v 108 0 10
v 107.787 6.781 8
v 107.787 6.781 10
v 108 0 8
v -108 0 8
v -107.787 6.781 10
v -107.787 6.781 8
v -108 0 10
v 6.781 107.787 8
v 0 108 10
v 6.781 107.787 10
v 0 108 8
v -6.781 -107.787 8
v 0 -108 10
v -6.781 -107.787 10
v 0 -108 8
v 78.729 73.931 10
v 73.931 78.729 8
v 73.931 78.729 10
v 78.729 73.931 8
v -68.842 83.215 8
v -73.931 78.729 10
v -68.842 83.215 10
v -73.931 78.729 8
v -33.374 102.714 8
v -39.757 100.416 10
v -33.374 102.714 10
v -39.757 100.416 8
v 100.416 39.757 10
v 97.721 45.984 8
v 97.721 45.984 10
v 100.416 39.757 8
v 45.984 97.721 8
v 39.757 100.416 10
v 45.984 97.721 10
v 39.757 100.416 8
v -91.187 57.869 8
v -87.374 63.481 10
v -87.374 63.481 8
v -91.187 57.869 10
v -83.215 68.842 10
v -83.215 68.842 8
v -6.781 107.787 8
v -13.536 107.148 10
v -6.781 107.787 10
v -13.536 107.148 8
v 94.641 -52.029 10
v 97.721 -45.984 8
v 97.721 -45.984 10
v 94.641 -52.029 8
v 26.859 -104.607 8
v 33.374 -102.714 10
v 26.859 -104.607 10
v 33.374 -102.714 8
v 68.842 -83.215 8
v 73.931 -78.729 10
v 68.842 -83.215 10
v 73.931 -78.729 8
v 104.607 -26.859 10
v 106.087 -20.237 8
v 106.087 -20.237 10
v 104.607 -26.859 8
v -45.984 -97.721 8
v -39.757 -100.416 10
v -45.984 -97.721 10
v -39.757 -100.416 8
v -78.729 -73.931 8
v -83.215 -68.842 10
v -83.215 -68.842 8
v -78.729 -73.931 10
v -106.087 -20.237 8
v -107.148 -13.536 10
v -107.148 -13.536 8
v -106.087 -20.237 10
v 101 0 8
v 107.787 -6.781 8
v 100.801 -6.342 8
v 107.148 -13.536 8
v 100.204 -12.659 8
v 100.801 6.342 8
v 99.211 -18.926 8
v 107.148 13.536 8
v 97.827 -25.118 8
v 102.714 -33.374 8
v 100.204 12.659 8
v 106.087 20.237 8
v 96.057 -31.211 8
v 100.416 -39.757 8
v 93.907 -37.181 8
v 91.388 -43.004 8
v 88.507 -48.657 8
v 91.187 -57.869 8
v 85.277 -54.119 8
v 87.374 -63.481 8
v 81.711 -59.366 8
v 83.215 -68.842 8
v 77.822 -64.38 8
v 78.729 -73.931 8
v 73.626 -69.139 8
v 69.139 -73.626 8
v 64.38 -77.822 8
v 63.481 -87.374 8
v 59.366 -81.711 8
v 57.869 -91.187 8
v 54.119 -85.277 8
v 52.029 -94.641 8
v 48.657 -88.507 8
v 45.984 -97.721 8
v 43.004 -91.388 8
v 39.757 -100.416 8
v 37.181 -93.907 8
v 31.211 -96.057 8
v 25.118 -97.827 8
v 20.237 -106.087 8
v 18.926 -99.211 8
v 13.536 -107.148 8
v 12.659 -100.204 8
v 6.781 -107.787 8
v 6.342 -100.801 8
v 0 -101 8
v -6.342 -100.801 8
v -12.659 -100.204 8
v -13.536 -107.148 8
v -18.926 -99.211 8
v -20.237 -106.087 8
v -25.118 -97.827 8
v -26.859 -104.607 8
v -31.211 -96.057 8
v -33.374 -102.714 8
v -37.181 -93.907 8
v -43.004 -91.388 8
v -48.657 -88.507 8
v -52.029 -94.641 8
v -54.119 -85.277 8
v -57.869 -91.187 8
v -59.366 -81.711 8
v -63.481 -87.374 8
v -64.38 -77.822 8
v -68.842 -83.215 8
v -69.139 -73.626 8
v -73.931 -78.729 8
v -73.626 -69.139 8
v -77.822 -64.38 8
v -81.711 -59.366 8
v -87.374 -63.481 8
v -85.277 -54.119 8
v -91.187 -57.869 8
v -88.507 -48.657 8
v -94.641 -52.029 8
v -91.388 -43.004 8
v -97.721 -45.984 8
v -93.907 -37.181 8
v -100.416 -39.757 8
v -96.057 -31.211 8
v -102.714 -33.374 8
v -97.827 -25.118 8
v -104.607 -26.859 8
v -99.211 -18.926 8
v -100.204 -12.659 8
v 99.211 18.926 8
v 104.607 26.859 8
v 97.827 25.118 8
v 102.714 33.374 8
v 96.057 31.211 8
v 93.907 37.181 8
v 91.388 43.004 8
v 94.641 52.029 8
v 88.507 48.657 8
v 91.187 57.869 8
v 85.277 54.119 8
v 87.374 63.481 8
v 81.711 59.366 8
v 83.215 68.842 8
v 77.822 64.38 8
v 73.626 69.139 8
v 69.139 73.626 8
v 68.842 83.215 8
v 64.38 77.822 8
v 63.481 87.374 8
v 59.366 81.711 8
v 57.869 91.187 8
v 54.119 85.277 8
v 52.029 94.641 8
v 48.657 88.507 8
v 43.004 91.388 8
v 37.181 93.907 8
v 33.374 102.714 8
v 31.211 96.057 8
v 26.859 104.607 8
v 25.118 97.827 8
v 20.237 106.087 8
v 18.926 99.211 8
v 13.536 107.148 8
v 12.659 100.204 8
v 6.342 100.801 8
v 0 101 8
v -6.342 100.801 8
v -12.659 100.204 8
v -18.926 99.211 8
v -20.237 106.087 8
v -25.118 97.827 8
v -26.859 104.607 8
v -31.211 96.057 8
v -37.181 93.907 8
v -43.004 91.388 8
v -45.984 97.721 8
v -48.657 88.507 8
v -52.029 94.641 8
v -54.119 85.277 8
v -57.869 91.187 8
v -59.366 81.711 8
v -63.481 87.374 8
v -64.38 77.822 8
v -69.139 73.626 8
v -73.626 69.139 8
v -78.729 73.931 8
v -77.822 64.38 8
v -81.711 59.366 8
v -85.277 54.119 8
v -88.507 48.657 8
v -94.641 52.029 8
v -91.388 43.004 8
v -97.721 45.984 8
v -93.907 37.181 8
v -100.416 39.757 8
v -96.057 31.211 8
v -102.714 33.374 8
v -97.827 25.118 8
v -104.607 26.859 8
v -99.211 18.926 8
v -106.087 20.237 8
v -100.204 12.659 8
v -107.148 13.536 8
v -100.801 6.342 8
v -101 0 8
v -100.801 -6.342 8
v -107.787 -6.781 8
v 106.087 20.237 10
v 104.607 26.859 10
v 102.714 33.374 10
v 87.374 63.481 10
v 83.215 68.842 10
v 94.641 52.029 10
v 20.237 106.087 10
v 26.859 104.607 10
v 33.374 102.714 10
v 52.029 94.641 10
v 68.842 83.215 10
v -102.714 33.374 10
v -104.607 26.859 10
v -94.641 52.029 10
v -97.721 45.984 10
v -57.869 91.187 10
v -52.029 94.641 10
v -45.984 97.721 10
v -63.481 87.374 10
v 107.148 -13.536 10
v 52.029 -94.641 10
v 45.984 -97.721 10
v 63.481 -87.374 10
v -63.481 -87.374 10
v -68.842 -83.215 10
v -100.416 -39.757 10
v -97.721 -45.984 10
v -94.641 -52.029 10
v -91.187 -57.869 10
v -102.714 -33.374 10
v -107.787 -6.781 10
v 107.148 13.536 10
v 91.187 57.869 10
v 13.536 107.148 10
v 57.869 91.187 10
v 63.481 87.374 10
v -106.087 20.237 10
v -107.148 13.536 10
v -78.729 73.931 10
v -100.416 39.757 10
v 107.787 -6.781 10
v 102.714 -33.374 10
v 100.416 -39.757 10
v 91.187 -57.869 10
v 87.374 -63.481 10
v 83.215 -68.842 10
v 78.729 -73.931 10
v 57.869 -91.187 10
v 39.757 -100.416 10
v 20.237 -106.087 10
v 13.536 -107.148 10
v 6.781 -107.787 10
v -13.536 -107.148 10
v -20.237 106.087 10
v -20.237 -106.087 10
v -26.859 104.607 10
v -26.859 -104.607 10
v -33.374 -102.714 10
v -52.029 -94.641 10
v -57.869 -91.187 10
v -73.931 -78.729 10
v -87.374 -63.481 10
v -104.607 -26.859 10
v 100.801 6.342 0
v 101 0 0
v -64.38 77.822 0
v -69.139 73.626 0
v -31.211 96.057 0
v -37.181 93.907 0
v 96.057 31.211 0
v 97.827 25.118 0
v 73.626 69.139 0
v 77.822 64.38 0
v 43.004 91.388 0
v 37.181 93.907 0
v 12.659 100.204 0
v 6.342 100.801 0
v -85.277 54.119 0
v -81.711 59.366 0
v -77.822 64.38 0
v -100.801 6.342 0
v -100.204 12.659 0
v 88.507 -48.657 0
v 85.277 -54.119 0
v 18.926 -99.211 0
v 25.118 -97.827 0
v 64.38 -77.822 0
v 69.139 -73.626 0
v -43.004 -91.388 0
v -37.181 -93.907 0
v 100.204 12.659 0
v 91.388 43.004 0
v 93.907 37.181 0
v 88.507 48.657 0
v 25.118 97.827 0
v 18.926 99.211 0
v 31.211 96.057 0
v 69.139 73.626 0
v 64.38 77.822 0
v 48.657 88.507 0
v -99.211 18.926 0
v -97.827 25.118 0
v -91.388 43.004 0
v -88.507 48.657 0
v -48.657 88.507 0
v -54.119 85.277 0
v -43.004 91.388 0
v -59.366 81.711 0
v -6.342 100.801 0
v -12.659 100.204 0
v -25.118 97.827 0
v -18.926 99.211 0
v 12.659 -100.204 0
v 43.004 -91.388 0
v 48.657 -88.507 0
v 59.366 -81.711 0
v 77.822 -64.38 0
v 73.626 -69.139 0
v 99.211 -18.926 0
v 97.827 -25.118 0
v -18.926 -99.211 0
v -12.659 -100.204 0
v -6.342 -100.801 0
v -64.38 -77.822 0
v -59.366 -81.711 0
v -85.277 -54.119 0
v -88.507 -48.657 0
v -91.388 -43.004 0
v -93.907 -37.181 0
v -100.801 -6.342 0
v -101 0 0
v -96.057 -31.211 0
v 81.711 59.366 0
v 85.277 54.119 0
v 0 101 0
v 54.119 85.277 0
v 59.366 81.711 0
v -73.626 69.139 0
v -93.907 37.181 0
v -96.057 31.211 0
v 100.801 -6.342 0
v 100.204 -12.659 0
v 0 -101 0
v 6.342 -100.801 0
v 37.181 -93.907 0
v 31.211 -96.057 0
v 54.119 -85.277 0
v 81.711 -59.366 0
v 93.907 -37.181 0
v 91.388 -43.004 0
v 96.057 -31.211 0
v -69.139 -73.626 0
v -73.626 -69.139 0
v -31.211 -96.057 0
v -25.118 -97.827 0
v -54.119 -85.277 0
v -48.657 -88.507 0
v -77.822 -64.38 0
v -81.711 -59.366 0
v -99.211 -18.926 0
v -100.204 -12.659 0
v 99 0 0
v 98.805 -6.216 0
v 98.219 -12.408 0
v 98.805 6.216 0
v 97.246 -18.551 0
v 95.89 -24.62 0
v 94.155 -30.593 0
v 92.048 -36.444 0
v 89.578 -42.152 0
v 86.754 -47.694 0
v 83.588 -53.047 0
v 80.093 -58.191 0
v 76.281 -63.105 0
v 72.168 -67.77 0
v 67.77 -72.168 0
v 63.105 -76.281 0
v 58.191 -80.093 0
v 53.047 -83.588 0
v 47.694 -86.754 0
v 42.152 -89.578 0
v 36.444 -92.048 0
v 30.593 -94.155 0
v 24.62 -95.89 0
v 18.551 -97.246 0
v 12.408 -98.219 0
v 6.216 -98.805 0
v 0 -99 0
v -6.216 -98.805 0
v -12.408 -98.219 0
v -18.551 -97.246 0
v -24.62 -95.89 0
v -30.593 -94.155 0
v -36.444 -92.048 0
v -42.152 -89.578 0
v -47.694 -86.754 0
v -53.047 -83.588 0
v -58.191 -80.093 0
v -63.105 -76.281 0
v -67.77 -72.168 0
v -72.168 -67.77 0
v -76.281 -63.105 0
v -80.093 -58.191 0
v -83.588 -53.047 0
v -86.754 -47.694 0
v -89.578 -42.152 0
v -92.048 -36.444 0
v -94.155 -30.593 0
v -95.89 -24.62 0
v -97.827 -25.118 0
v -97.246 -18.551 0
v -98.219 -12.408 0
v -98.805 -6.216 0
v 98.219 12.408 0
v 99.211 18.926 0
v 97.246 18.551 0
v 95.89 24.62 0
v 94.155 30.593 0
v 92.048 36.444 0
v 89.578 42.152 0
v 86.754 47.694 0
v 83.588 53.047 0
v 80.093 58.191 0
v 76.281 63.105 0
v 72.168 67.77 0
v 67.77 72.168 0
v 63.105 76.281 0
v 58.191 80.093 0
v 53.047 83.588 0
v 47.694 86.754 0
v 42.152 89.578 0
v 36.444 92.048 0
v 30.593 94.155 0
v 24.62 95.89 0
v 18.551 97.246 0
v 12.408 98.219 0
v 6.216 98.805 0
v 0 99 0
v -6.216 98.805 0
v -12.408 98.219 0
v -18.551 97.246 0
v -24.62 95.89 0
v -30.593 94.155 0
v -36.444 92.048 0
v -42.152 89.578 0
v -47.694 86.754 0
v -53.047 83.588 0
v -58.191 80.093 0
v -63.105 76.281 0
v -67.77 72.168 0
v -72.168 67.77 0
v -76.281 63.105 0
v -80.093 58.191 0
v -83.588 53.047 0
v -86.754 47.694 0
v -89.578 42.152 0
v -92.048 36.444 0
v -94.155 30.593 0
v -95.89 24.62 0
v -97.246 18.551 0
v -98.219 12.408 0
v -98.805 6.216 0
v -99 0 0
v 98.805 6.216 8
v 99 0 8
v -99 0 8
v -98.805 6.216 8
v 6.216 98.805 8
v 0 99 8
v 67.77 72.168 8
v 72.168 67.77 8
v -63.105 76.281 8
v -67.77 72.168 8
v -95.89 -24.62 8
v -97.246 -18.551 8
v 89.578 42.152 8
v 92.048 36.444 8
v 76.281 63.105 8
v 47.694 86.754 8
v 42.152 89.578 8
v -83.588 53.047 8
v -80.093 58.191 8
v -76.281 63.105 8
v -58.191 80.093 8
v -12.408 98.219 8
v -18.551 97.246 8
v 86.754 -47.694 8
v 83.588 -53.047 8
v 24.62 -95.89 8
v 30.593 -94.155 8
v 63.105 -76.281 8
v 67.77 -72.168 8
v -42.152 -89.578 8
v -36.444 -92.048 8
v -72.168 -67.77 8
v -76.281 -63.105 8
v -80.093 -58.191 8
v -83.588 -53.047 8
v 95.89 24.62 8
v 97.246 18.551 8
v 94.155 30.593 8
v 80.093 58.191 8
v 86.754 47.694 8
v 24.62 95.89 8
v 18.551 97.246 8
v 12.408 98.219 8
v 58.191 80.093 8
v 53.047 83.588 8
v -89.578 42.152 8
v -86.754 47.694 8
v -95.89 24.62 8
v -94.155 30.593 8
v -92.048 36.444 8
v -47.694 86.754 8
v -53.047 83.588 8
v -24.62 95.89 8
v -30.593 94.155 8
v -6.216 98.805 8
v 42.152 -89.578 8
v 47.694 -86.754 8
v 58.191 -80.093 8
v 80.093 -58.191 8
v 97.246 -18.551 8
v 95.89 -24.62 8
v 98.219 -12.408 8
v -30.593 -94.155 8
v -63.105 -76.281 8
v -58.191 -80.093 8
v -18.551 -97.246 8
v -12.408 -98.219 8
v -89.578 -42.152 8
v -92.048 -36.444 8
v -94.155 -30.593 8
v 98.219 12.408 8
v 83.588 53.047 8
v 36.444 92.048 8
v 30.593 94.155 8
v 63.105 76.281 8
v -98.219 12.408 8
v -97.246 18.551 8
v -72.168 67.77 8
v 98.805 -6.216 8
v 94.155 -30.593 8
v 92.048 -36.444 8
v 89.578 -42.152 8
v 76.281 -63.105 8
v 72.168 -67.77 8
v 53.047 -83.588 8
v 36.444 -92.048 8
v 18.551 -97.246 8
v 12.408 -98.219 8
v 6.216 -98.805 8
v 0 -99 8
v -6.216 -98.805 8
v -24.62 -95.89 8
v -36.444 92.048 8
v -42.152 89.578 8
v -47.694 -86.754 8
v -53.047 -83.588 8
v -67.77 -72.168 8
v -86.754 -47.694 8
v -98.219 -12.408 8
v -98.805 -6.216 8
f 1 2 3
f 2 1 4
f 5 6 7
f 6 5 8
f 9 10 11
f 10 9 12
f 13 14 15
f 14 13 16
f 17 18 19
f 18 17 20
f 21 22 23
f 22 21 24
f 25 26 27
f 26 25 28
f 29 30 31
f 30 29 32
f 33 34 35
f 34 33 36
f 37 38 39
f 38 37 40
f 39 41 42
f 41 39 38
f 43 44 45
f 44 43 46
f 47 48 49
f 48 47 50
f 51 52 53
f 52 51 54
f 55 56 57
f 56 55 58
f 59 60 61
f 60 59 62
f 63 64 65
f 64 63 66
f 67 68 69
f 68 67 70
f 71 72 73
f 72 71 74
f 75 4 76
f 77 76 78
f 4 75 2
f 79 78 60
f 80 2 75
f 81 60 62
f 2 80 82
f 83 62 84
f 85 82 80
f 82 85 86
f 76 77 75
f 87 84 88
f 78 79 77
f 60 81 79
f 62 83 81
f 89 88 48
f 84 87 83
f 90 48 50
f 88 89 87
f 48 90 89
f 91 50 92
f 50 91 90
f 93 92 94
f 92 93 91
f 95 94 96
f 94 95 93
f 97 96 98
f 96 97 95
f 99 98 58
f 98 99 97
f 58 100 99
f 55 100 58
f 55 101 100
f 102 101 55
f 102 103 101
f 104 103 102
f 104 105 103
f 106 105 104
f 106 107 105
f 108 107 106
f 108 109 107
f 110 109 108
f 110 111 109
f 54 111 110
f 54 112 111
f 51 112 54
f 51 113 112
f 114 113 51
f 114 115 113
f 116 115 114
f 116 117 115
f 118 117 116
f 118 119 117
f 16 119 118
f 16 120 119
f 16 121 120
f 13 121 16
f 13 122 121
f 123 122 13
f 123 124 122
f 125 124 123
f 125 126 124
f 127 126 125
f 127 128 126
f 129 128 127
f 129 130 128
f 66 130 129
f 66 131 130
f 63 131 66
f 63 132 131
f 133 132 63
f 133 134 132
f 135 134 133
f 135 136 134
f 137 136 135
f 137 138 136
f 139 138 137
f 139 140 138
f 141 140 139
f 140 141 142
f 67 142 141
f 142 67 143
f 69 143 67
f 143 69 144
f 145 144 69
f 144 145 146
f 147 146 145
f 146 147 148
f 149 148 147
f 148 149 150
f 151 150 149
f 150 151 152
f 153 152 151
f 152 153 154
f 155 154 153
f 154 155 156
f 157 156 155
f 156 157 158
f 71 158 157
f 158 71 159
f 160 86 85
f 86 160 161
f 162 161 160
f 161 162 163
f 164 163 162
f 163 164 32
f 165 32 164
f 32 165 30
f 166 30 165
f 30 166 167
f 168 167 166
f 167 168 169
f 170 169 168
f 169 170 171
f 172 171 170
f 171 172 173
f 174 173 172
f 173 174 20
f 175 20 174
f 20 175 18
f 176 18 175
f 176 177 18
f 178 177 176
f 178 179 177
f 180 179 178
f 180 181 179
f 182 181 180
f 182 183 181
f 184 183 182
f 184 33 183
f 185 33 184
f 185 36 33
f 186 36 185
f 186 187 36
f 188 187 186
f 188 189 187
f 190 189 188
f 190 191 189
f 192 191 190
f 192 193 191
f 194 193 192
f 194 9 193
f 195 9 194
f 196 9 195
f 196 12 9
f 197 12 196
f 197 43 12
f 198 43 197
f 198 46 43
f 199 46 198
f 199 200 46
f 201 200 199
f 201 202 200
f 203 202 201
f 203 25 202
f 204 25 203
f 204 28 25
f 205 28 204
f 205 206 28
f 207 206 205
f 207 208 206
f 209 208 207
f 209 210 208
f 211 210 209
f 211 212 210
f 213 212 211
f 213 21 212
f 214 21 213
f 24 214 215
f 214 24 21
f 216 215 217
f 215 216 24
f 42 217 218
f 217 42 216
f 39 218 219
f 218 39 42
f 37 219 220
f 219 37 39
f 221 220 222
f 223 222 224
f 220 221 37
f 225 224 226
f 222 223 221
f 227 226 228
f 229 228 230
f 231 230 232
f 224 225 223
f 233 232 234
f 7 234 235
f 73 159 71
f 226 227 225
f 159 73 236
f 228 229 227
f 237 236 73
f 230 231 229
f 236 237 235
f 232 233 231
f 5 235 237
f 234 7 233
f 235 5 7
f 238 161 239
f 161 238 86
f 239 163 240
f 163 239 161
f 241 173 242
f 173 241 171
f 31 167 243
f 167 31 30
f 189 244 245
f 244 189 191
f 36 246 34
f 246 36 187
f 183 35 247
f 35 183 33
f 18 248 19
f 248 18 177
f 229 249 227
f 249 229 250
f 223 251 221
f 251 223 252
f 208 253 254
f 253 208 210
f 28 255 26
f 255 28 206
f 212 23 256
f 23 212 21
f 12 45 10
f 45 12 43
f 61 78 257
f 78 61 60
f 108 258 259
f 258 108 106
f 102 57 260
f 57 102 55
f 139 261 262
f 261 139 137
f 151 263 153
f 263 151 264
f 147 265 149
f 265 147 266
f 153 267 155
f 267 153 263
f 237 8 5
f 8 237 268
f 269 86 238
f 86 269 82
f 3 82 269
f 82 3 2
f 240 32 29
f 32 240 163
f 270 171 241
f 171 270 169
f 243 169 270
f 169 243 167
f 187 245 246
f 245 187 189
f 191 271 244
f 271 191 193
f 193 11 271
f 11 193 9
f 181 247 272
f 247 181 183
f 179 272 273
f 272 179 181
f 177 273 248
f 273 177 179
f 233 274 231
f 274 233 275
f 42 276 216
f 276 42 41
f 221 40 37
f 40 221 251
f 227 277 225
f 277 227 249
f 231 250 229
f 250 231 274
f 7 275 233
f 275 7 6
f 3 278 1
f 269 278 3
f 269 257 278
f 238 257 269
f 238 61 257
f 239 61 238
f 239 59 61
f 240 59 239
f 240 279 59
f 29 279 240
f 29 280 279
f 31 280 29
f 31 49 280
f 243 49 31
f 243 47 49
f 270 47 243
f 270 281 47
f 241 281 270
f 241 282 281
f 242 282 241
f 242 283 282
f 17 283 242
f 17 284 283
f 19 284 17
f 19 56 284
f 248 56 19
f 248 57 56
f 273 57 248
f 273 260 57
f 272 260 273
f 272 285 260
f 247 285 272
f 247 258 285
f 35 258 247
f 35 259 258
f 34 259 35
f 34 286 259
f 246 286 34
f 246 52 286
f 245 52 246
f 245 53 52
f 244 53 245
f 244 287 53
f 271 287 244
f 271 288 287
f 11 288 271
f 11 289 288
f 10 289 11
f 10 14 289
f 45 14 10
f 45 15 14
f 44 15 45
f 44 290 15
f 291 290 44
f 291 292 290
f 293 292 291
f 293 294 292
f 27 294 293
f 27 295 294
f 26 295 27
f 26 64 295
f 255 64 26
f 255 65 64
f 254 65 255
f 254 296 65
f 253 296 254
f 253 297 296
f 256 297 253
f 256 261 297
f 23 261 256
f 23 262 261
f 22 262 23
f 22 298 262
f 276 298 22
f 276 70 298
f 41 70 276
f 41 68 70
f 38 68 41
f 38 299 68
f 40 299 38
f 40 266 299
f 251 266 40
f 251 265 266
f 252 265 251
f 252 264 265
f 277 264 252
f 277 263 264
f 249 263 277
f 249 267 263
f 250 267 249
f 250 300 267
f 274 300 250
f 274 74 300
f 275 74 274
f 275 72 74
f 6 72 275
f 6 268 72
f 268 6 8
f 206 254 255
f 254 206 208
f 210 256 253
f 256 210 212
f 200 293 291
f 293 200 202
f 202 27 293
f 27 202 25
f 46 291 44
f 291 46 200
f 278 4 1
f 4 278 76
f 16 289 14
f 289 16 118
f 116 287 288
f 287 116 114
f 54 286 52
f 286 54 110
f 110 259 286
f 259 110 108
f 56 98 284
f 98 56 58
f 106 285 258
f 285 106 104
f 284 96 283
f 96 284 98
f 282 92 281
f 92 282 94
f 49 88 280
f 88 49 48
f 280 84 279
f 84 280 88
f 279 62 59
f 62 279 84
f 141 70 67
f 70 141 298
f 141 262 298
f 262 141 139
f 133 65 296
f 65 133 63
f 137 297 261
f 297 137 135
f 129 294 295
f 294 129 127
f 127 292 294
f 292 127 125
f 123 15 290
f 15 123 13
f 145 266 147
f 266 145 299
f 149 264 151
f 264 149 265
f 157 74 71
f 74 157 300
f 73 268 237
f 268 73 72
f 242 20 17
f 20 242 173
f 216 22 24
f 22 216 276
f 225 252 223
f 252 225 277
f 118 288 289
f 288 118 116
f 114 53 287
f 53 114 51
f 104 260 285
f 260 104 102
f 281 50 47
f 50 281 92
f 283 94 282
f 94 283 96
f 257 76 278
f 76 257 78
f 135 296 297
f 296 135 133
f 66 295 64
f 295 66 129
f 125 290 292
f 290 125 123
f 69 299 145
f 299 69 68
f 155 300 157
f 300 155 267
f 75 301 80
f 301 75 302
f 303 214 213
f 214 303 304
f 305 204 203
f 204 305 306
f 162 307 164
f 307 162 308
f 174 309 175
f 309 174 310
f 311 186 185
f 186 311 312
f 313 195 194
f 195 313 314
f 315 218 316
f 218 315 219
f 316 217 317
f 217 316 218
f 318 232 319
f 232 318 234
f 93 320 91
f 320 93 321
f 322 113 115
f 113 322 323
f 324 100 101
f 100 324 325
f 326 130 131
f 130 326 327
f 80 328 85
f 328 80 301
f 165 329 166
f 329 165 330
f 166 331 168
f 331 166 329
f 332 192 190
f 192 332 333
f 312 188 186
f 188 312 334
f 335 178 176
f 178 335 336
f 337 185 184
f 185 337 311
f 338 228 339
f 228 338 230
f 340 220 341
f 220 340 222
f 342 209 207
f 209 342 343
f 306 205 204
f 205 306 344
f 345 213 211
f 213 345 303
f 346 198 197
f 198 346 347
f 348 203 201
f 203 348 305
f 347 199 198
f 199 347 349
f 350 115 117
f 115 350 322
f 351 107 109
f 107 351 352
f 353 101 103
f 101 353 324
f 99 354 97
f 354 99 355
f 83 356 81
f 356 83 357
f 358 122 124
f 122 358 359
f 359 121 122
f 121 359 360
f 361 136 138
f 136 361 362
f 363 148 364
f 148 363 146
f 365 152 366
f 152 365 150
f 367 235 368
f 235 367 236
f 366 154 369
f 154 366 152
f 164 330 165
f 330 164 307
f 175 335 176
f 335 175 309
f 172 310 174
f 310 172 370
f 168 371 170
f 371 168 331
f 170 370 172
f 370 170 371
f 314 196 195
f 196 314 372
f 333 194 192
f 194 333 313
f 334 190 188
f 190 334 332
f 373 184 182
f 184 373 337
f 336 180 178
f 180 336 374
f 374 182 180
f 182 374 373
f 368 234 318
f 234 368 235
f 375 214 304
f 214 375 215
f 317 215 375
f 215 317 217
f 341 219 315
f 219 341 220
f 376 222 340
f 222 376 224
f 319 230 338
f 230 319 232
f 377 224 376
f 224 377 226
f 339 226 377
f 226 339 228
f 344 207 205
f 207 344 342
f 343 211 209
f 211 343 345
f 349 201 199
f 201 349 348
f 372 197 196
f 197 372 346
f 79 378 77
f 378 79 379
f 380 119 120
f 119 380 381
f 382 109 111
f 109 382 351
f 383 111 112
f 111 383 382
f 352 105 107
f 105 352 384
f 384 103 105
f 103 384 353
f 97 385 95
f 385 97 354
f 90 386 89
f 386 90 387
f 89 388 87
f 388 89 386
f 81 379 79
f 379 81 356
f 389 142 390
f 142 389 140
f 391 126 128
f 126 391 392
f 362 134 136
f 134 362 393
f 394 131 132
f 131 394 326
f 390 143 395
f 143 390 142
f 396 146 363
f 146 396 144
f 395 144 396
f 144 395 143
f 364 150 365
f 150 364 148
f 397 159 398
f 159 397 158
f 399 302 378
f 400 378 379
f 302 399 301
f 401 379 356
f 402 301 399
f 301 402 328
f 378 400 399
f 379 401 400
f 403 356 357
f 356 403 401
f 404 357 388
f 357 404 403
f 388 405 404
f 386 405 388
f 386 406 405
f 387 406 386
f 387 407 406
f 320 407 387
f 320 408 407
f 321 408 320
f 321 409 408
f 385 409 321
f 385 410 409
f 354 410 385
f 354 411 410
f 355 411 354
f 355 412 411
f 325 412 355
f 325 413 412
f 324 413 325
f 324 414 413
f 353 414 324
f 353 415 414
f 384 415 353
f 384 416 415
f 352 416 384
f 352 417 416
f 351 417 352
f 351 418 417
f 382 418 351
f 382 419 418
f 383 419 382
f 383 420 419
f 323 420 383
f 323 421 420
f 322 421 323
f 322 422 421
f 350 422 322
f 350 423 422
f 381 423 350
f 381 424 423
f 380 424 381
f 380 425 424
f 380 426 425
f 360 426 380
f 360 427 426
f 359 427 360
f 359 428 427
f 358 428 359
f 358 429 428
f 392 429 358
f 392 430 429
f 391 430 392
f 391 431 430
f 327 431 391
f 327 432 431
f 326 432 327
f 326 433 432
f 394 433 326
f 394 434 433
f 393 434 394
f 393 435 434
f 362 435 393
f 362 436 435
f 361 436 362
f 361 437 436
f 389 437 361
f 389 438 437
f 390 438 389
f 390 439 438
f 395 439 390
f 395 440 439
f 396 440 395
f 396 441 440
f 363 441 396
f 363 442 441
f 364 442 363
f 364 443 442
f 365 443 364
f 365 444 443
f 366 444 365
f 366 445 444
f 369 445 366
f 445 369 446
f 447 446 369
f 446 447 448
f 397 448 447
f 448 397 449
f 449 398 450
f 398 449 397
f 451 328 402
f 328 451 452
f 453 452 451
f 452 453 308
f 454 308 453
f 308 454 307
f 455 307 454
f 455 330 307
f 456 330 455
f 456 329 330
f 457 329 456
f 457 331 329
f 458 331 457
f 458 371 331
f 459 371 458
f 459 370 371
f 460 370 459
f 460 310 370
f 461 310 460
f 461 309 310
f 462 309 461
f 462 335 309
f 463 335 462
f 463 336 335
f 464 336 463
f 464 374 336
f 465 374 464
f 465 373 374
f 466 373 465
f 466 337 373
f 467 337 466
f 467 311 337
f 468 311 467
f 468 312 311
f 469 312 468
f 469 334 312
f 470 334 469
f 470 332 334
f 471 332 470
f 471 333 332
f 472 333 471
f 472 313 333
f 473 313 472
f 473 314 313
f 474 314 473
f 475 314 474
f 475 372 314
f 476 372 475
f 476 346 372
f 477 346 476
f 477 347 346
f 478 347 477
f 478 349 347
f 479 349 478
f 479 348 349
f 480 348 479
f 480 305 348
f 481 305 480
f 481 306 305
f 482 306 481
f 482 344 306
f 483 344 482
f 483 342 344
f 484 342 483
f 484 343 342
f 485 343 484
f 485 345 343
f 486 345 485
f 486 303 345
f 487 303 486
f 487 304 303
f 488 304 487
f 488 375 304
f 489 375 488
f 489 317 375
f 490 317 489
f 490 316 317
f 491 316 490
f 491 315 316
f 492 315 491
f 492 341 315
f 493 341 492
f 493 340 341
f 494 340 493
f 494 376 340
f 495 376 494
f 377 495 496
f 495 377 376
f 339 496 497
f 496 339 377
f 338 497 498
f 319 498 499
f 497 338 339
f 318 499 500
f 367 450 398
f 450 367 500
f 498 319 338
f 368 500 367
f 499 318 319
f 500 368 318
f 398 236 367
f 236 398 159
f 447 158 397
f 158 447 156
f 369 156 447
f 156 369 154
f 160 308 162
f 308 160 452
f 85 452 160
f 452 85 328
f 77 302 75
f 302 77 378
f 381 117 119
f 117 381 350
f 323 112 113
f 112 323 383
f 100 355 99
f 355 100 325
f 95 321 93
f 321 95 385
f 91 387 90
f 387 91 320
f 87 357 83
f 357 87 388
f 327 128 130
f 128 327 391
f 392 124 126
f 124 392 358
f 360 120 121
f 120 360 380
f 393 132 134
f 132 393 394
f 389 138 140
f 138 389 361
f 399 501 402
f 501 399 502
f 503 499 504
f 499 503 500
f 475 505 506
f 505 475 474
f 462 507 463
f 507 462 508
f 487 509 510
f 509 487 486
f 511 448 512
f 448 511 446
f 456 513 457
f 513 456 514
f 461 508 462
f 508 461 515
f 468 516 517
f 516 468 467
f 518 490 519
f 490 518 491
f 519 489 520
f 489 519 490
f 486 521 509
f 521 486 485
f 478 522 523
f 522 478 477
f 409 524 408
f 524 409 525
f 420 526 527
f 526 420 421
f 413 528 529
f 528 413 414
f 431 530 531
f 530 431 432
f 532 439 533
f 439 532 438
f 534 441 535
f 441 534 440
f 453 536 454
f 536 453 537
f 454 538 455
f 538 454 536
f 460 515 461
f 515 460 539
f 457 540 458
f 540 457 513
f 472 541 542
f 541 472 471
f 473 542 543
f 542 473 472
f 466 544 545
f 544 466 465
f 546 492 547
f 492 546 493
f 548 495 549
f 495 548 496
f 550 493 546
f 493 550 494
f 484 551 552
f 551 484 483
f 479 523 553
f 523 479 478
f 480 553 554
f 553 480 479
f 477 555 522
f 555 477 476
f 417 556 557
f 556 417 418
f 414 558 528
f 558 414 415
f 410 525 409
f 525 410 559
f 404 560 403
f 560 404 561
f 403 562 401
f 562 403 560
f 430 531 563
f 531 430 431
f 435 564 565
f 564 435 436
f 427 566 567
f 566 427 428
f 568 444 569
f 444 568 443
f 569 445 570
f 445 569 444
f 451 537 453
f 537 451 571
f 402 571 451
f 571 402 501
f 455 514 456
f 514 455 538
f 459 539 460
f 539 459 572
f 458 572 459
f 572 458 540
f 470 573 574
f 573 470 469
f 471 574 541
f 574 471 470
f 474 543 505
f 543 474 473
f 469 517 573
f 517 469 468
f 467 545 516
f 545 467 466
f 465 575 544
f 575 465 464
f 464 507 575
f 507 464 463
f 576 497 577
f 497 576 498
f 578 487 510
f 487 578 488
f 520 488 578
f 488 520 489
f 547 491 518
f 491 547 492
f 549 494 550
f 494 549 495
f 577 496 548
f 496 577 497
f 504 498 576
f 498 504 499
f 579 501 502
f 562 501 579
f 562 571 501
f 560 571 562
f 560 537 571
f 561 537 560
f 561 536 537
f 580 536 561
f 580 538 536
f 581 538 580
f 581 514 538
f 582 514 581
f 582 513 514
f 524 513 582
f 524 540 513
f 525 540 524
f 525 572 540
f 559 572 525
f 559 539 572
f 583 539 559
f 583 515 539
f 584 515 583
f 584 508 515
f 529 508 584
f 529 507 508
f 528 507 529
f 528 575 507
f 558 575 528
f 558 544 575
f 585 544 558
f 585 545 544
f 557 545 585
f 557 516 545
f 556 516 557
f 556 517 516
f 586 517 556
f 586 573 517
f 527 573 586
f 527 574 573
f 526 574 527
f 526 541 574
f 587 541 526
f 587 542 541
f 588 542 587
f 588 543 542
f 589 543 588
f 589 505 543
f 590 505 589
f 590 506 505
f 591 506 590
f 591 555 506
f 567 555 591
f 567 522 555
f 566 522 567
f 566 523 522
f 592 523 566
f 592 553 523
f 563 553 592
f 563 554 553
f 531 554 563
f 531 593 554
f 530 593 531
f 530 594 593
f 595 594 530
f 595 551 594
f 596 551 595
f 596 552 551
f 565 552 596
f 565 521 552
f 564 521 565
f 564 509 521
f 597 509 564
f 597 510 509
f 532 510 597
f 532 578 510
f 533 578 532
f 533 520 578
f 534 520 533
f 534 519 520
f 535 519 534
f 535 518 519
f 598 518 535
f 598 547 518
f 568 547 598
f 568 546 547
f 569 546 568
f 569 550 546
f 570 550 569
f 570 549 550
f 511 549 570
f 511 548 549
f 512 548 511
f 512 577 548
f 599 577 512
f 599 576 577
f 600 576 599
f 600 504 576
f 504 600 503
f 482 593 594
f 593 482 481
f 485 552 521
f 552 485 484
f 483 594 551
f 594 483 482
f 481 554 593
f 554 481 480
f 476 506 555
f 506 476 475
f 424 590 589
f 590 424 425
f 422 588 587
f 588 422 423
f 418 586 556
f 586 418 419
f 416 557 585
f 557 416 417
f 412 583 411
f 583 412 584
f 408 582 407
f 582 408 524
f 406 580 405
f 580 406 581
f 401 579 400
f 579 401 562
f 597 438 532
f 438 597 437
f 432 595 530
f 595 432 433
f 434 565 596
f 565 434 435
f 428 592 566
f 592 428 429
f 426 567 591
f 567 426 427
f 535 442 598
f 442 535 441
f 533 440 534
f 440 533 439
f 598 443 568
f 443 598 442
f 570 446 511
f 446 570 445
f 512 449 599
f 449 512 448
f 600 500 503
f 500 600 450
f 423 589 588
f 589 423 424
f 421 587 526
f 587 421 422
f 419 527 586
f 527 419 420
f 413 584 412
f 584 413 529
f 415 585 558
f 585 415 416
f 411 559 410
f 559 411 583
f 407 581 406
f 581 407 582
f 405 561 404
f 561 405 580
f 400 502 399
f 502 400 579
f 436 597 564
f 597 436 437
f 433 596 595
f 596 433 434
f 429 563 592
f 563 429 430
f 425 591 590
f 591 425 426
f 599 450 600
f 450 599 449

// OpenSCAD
// file: ../../../vermicomposter_cylinder.scad
$fn = 100;

vermicomposter_cylinder(
    d = 210,
    height = 100,
    con = 5,
    bottom = [2, 20],
    column_d = 6,
    columns = 80,
    holes_mt = 25,
    holes_var = 12.5
);

module vermicomposter_cylinder(
    d = 210,
    height = 100,
    con = 5,
    bottom = [2, 20],
    column_d = 6,
    columns = 80,
    holes_mt = 25,
    holes_var = 12.5
){
    angle = 360 / columns;
    wall_margin = 2 * bottom[0];
    
    translate([0,0,con + bottom[1]]) cylinder(h = height - con - bottom[1], d = d); //top
    translate([0,0,bottom[1]]) cylinder(h = con, d1 = d-wall_margin, d2=d); //connector
    cylinder(h = bottom[1], d=d-wall_margin); //bottom

    for(a=[0:columns]){
        n = a%2 ? holes_mt : holes_mt + holes_var;
        
        rotate(a * angle) translate([0,-d/2,bottom[1]+con]) column(
            d = column_d,
            h = height - con - bottom[1],
            hole_mt = n
        );
    }
    
}


module column(
    d = 10,
    h = 40,
    hole_mt = 18
    
){
    scale([1,0.8,1]) difference(){
        union(){
            cylinder(r1=0, r2=d/2, h=d);
            translate([0,0,d]) cylinder(h=h - 2*d, d=d);
            translate([0,0,h-d]) cylinder(r1=d/2, r2=0, h=d);
        }
        if (hole_mt <= h){        
            translate([d/2,0,h-hole_mt]) 
            rotate([0,-90,0]) linear_extrude(d) polygon(points = [
                [0,0],
                [0,-d],
                [sqrt(pow(d,2) - pow(d/2,2)),-d/2]
            ]);
        }
    }
}
// main file
use <../../../vermicomposter_cylinder.scad>

$fn = 100;

difference(){
    vermicomposter_cylinder(
        d = 216,
        height = 10,
        con = 0,
        bottom = [7, 8],
        column_d = 0,
        columns = 80,
        holes_mt = 0,
        holes_var = 0 
    );
    cylinder(d=216-14-4, h=8);
}
